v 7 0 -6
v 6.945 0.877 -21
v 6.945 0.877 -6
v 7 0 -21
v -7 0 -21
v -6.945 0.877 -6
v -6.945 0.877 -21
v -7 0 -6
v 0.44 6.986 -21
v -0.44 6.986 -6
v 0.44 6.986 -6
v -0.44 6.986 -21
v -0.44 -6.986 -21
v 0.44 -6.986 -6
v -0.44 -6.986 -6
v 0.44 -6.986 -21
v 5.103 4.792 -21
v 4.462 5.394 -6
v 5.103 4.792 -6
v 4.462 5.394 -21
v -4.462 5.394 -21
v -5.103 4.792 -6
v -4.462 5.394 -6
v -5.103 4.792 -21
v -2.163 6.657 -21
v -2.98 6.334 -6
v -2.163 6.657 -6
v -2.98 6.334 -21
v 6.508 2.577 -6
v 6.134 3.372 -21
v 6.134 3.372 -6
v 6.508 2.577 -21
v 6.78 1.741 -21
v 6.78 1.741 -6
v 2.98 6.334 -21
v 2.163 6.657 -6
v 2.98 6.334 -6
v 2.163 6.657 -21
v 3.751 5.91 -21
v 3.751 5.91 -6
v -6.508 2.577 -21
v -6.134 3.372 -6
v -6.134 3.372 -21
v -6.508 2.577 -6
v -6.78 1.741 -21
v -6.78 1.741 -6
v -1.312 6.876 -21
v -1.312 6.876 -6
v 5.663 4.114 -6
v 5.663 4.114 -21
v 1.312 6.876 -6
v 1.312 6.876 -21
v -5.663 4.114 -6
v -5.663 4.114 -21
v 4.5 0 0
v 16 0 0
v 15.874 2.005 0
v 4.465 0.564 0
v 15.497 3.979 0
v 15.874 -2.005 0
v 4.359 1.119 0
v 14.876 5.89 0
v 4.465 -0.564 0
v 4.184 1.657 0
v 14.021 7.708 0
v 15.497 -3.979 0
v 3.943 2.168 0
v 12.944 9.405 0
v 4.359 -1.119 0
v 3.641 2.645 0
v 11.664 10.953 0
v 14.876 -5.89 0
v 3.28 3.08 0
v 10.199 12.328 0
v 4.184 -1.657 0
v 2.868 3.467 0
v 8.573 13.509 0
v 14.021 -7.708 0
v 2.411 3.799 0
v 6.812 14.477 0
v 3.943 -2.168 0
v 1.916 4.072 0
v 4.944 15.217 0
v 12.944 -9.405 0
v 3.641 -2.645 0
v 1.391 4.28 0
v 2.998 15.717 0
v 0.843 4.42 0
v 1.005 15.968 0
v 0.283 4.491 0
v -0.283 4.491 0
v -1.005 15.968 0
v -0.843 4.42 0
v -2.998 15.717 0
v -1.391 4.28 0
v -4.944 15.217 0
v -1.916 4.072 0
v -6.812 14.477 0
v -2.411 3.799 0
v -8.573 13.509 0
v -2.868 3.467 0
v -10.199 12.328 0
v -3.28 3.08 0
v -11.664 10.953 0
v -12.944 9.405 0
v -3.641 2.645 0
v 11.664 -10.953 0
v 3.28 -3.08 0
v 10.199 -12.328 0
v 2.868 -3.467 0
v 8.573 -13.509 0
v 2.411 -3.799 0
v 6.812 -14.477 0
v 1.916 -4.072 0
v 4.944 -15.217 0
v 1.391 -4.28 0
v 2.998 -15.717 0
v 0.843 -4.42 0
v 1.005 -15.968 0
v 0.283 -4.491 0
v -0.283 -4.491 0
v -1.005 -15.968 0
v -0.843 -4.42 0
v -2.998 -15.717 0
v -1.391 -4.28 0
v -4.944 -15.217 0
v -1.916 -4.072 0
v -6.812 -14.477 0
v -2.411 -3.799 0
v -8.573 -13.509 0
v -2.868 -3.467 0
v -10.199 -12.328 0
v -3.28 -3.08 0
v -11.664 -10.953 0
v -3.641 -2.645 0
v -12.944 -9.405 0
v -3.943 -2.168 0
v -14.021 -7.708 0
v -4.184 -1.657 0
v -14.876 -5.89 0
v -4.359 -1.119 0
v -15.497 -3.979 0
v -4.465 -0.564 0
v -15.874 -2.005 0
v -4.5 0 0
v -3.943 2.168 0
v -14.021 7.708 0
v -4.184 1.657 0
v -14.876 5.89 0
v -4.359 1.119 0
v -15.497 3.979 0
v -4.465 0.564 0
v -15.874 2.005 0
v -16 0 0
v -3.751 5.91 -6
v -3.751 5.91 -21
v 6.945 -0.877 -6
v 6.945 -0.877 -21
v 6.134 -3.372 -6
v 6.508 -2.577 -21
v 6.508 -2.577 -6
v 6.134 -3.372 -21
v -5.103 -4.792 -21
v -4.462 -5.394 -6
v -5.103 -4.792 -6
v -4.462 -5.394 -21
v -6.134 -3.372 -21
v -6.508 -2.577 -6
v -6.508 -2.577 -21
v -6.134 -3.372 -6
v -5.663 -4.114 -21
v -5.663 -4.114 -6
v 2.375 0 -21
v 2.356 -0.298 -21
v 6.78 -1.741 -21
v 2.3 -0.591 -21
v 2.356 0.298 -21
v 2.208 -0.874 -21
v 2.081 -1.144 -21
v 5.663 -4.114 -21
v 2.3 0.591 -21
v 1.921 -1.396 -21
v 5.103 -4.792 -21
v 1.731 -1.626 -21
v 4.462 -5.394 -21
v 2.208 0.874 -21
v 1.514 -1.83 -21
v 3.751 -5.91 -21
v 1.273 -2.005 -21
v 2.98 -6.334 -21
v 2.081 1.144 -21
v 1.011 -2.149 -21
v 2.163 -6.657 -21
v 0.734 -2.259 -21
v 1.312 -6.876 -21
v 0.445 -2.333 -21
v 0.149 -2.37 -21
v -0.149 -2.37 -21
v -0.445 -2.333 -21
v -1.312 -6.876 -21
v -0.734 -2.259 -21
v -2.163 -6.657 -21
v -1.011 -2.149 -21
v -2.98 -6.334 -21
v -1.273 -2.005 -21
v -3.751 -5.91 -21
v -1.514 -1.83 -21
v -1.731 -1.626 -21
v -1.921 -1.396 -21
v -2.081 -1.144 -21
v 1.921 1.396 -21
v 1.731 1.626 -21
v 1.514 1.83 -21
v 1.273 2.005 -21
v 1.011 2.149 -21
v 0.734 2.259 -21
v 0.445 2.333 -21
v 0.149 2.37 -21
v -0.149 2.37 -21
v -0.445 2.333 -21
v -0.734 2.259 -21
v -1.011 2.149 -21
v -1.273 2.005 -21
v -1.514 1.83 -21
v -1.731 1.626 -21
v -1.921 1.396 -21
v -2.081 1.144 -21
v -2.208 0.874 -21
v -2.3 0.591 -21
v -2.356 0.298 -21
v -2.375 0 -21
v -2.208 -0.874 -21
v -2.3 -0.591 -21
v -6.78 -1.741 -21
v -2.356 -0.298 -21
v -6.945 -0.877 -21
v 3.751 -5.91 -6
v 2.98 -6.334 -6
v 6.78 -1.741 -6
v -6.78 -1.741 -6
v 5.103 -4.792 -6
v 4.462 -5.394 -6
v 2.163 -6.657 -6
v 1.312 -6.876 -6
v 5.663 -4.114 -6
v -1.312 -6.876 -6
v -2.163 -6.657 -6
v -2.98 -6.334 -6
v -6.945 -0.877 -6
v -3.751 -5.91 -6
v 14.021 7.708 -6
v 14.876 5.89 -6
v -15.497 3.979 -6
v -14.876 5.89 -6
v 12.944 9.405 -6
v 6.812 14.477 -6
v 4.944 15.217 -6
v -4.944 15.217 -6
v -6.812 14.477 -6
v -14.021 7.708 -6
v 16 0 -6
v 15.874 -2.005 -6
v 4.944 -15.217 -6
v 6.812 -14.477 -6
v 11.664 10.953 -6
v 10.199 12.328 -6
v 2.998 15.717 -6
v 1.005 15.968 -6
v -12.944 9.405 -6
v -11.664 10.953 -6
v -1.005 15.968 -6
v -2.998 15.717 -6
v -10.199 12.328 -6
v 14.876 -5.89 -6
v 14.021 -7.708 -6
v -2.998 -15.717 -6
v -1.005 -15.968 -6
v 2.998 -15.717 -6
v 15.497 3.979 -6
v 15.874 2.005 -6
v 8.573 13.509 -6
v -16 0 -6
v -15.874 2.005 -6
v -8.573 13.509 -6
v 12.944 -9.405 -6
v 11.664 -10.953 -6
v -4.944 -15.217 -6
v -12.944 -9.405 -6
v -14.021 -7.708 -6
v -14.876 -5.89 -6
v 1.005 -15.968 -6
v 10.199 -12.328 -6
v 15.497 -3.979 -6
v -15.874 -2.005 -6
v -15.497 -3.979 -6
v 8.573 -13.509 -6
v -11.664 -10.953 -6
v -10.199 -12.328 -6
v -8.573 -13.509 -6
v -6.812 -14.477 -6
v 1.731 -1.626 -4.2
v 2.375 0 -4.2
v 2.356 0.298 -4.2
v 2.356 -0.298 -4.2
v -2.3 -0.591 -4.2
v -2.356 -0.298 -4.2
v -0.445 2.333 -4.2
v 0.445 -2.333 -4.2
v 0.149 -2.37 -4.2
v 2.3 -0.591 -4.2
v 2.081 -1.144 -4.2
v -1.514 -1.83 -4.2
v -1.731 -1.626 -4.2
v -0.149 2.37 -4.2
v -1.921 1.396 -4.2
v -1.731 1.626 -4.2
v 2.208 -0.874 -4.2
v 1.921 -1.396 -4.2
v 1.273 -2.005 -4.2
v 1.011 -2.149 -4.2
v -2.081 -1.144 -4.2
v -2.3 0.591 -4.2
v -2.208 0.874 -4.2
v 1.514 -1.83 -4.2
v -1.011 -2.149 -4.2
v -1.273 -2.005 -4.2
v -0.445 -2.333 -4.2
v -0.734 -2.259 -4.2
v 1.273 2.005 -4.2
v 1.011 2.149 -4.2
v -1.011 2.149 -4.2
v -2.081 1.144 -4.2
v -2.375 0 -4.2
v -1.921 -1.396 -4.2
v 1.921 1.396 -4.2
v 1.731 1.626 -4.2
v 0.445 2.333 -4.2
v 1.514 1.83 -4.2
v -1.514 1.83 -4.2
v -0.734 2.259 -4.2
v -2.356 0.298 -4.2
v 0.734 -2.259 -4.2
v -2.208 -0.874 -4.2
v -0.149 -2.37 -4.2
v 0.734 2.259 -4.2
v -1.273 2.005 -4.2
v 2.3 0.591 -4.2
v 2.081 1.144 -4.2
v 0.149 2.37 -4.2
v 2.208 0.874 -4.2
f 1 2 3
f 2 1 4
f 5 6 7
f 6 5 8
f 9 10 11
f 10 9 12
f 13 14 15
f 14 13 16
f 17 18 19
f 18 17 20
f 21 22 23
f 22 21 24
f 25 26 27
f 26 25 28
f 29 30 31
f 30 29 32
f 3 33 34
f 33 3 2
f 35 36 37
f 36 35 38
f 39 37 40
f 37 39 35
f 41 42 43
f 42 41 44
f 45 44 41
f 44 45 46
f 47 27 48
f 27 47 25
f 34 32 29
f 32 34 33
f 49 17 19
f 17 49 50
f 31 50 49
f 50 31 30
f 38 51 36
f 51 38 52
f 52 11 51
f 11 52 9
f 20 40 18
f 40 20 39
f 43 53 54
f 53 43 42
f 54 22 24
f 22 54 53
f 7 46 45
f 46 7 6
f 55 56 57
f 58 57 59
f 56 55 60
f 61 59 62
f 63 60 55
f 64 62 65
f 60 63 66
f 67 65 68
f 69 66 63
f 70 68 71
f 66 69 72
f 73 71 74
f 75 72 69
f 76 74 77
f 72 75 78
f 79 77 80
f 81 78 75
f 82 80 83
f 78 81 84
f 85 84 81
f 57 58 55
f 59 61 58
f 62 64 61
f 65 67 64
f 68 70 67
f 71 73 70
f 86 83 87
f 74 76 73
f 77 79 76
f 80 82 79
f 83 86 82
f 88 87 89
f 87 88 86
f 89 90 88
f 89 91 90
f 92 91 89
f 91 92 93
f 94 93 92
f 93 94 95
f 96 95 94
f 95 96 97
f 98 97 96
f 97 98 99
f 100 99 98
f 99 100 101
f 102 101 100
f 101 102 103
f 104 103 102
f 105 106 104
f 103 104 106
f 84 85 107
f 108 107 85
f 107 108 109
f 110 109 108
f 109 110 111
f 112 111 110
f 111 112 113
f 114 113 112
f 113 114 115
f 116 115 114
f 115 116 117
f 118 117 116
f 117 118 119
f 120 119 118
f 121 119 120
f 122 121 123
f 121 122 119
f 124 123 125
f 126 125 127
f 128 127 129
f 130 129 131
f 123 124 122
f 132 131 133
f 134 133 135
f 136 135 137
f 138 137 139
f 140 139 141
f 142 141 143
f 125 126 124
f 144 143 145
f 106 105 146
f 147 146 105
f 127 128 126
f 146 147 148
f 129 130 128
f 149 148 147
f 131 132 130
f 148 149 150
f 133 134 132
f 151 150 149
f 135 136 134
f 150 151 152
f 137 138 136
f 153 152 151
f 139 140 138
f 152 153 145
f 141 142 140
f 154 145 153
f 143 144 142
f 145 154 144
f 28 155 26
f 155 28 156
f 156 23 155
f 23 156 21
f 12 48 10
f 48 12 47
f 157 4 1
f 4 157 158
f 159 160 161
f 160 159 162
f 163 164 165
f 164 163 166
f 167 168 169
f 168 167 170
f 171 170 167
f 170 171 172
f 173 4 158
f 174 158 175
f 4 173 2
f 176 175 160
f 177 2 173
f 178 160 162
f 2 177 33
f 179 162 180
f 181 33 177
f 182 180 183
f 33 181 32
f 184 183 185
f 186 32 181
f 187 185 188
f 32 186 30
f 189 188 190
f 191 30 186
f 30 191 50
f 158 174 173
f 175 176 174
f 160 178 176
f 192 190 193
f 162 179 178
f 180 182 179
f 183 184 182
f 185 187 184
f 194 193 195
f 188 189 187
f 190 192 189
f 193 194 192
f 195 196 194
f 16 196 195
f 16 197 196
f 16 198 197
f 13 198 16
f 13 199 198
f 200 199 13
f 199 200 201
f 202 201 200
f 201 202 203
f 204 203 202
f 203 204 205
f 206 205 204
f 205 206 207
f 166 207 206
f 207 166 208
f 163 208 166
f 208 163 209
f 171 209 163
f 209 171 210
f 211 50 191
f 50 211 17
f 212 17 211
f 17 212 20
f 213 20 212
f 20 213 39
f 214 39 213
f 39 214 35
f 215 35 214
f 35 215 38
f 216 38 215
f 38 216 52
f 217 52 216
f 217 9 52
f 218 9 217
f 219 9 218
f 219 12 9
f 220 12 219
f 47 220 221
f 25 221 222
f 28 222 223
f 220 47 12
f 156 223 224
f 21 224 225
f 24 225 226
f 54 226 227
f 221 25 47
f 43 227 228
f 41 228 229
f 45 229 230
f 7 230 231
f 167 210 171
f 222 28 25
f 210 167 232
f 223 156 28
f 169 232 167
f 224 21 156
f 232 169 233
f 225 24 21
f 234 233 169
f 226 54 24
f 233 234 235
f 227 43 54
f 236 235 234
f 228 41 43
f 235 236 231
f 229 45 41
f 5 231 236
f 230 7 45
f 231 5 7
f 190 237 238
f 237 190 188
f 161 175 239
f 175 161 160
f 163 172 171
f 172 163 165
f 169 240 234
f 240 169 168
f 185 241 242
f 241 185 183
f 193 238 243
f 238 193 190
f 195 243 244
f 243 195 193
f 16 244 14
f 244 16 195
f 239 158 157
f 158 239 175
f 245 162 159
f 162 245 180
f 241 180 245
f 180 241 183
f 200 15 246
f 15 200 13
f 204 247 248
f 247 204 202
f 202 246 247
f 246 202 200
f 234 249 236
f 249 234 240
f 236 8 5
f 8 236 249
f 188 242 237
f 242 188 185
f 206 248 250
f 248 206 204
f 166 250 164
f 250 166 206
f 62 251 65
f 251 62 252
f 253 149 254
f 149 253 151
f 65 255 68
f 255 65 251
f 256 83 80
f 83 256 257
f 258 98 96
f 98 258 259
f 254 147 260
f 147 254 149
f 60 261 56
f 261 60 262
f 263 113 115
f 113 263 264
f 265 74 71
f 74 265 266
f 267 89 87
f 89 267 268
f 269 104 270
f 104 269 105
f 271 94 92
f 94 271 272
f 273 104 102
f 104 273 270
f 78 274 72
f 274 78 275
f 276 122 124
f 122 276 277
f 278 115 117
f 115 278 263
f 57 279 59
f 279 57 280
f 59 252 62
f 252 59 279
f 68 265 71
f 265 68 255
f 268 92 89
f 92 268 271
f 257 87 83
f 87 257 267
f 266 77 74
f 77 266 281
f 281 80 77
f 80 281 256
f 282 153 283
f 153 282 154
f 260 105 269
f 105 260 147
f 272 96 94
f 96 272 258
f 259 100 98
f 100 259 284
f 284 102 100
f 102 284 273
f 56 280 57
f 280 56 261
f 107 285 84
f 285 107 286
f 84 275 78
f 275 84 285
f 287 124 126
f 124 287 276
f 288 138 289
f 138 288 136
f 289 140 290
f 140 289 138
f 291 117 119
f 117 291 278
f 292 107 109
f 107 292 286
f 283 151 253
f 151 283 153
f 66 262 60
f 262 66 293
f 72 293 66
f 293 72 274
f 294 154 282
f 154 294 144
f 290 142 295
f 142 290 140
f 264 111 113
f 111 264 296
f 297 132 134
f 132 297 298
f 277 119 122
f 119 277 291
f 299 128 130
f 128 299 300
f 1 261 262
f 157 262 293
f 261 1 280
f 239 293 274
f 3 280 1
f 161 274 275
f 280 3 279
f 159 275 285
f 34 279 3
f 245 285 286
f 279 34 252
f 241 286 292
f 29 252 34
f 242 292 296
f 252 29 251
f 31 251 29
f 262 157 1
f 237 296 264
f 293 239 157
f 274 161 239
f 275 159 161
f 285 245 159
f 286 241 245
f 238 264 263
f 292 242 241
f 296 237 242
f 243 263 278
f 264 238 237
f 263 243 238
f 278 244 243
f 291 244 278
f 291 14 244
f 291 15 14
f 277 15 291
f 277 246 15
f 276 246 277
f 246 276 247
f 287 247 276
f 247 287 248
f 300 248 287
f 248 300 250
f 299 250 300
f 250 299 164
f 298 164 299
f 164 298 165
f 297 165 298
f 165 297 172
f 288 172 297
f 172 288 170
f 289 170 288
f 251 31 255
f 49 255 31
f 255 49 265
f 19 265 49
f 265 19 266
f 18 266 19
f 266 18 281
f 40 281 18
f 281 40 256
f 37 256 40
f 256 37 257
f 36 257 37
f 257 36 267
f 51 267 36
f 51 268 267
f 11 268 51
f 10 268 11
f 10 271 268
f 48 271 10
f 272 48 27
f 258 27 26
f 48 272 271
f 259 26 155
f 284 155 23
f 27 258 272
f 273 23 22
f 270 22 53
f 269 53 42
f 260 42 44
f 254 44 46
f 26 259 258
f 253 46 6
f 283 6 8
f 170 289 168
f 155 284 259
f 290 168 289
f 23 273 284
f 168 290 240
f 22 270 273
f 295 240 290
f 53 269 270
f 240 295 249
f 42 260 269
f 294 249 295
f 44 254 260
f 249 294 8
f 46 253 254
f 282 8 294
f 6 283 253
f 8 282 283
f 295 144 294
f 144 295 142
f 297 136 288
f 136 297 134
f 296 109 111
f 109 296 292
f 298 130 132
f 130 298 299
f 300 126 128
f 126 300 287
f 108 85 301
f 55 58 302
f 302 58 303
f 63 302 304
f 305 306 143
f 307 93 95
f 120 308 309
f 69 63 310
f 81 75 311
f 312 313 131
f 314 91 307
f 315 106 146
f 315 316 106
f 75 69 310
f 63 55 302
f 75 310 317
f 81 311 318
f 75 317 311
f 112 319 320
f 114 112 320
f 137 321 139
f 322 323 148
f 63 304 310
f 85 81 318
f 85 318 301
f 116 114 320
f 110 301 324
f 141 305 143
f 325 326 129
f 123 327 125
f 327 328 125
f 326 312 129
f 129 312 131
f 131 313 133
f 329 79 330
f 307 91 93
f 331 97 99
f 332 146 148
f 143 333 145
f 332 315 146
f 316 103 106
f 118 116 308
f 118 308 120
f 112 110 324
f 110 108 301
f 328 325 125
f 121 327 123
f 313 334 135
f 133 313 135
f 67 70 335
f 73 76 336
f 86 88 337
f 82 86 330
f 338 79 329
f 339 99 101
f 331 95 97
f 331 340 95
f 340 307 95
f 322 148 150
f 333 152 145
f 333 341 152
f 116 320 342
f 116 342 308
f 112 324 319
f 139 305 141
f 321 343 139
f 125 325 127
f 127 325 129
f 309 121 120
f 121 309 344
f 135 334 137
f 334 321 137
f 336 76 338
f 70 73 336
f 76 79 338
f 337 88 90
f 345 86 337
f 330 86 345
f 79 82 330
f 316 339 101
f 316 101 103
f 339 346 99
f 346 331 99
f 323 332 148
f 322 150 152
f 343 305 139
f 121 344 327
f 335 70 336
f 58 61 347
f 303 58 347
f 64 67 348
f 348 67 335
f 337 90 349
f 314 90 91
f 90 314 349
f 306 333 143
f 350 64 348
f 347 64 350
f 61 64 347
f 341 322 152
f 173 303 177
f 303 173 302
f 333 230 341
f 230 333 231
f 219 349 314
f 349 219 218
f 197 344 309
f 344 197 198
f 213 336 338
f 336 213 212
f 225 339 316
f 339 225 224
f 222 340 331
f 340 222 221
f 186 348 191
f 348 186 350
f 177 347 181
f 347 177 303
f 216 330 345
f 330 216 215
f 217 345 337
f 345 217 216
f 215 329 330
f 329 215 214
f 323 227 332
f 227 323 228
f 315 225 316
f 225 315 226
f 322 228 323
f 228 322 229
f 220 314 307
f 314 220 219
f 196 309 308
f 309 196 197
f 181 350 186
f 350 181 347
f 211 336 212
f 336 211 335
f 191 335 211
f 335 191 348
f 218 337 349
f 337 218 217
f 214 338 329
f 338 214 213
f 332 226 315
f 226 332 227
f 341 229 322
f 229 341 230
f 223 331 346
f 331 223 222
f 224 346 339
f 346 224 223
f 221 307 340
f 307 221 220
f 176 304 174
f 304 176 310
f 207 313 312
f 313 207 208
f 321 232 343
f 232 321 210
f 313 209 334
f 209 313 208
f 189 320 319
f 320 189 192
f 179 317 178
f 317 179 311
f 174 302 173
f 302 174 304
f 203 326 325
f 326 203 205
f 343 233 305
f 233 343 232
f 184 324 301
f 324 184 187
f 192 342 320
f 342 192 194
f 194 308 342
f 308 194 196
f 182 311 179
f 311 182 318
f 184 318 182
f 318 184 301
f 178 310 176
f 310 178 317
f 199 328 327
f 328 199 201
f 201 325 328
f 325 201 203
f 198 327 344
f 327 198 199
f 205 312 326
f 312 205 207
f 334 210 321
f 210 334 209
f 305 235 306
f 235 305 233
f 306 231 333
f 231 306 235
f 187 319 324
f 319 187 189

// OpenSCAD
$fn = 50;


difference() {
	union() {
		translate(v = [0, 0, -21.0000000000]) {
			cylinder(h = 21, r = 7.0000000000);
		}
		translate(v = [0, 0, -6.0000000000]) {
			cylinder(h = 6, r = 16.0000000000);
		}
	}
	union() {
		translate(v = [0, 0, 0]) {
			rotate(a = [0, 0, 0]) {
				difference() {
					union() {
						#translate(v = [0, 0, -21.0000000000]) {
							cylinder(h = 21, r = 2.2500000000);
						}
						#translate(v = [0, 0, -4.2000000000]) {
							cylinder(h = 4.2000000000, r1 = 2.3750000000, r2 = 4.5000000000);
						}
						#translate(v = [0, 0, -21.0000000000]) {
							cylinder(h = 21, r = 2.3750000000);
						}
						#translate(v = [0, 0, -21.0000000000]) {
							cylinder(h = 21, r = 2.2500000000);
						}
					}
					union();
				}
			}
		}
	}
}
